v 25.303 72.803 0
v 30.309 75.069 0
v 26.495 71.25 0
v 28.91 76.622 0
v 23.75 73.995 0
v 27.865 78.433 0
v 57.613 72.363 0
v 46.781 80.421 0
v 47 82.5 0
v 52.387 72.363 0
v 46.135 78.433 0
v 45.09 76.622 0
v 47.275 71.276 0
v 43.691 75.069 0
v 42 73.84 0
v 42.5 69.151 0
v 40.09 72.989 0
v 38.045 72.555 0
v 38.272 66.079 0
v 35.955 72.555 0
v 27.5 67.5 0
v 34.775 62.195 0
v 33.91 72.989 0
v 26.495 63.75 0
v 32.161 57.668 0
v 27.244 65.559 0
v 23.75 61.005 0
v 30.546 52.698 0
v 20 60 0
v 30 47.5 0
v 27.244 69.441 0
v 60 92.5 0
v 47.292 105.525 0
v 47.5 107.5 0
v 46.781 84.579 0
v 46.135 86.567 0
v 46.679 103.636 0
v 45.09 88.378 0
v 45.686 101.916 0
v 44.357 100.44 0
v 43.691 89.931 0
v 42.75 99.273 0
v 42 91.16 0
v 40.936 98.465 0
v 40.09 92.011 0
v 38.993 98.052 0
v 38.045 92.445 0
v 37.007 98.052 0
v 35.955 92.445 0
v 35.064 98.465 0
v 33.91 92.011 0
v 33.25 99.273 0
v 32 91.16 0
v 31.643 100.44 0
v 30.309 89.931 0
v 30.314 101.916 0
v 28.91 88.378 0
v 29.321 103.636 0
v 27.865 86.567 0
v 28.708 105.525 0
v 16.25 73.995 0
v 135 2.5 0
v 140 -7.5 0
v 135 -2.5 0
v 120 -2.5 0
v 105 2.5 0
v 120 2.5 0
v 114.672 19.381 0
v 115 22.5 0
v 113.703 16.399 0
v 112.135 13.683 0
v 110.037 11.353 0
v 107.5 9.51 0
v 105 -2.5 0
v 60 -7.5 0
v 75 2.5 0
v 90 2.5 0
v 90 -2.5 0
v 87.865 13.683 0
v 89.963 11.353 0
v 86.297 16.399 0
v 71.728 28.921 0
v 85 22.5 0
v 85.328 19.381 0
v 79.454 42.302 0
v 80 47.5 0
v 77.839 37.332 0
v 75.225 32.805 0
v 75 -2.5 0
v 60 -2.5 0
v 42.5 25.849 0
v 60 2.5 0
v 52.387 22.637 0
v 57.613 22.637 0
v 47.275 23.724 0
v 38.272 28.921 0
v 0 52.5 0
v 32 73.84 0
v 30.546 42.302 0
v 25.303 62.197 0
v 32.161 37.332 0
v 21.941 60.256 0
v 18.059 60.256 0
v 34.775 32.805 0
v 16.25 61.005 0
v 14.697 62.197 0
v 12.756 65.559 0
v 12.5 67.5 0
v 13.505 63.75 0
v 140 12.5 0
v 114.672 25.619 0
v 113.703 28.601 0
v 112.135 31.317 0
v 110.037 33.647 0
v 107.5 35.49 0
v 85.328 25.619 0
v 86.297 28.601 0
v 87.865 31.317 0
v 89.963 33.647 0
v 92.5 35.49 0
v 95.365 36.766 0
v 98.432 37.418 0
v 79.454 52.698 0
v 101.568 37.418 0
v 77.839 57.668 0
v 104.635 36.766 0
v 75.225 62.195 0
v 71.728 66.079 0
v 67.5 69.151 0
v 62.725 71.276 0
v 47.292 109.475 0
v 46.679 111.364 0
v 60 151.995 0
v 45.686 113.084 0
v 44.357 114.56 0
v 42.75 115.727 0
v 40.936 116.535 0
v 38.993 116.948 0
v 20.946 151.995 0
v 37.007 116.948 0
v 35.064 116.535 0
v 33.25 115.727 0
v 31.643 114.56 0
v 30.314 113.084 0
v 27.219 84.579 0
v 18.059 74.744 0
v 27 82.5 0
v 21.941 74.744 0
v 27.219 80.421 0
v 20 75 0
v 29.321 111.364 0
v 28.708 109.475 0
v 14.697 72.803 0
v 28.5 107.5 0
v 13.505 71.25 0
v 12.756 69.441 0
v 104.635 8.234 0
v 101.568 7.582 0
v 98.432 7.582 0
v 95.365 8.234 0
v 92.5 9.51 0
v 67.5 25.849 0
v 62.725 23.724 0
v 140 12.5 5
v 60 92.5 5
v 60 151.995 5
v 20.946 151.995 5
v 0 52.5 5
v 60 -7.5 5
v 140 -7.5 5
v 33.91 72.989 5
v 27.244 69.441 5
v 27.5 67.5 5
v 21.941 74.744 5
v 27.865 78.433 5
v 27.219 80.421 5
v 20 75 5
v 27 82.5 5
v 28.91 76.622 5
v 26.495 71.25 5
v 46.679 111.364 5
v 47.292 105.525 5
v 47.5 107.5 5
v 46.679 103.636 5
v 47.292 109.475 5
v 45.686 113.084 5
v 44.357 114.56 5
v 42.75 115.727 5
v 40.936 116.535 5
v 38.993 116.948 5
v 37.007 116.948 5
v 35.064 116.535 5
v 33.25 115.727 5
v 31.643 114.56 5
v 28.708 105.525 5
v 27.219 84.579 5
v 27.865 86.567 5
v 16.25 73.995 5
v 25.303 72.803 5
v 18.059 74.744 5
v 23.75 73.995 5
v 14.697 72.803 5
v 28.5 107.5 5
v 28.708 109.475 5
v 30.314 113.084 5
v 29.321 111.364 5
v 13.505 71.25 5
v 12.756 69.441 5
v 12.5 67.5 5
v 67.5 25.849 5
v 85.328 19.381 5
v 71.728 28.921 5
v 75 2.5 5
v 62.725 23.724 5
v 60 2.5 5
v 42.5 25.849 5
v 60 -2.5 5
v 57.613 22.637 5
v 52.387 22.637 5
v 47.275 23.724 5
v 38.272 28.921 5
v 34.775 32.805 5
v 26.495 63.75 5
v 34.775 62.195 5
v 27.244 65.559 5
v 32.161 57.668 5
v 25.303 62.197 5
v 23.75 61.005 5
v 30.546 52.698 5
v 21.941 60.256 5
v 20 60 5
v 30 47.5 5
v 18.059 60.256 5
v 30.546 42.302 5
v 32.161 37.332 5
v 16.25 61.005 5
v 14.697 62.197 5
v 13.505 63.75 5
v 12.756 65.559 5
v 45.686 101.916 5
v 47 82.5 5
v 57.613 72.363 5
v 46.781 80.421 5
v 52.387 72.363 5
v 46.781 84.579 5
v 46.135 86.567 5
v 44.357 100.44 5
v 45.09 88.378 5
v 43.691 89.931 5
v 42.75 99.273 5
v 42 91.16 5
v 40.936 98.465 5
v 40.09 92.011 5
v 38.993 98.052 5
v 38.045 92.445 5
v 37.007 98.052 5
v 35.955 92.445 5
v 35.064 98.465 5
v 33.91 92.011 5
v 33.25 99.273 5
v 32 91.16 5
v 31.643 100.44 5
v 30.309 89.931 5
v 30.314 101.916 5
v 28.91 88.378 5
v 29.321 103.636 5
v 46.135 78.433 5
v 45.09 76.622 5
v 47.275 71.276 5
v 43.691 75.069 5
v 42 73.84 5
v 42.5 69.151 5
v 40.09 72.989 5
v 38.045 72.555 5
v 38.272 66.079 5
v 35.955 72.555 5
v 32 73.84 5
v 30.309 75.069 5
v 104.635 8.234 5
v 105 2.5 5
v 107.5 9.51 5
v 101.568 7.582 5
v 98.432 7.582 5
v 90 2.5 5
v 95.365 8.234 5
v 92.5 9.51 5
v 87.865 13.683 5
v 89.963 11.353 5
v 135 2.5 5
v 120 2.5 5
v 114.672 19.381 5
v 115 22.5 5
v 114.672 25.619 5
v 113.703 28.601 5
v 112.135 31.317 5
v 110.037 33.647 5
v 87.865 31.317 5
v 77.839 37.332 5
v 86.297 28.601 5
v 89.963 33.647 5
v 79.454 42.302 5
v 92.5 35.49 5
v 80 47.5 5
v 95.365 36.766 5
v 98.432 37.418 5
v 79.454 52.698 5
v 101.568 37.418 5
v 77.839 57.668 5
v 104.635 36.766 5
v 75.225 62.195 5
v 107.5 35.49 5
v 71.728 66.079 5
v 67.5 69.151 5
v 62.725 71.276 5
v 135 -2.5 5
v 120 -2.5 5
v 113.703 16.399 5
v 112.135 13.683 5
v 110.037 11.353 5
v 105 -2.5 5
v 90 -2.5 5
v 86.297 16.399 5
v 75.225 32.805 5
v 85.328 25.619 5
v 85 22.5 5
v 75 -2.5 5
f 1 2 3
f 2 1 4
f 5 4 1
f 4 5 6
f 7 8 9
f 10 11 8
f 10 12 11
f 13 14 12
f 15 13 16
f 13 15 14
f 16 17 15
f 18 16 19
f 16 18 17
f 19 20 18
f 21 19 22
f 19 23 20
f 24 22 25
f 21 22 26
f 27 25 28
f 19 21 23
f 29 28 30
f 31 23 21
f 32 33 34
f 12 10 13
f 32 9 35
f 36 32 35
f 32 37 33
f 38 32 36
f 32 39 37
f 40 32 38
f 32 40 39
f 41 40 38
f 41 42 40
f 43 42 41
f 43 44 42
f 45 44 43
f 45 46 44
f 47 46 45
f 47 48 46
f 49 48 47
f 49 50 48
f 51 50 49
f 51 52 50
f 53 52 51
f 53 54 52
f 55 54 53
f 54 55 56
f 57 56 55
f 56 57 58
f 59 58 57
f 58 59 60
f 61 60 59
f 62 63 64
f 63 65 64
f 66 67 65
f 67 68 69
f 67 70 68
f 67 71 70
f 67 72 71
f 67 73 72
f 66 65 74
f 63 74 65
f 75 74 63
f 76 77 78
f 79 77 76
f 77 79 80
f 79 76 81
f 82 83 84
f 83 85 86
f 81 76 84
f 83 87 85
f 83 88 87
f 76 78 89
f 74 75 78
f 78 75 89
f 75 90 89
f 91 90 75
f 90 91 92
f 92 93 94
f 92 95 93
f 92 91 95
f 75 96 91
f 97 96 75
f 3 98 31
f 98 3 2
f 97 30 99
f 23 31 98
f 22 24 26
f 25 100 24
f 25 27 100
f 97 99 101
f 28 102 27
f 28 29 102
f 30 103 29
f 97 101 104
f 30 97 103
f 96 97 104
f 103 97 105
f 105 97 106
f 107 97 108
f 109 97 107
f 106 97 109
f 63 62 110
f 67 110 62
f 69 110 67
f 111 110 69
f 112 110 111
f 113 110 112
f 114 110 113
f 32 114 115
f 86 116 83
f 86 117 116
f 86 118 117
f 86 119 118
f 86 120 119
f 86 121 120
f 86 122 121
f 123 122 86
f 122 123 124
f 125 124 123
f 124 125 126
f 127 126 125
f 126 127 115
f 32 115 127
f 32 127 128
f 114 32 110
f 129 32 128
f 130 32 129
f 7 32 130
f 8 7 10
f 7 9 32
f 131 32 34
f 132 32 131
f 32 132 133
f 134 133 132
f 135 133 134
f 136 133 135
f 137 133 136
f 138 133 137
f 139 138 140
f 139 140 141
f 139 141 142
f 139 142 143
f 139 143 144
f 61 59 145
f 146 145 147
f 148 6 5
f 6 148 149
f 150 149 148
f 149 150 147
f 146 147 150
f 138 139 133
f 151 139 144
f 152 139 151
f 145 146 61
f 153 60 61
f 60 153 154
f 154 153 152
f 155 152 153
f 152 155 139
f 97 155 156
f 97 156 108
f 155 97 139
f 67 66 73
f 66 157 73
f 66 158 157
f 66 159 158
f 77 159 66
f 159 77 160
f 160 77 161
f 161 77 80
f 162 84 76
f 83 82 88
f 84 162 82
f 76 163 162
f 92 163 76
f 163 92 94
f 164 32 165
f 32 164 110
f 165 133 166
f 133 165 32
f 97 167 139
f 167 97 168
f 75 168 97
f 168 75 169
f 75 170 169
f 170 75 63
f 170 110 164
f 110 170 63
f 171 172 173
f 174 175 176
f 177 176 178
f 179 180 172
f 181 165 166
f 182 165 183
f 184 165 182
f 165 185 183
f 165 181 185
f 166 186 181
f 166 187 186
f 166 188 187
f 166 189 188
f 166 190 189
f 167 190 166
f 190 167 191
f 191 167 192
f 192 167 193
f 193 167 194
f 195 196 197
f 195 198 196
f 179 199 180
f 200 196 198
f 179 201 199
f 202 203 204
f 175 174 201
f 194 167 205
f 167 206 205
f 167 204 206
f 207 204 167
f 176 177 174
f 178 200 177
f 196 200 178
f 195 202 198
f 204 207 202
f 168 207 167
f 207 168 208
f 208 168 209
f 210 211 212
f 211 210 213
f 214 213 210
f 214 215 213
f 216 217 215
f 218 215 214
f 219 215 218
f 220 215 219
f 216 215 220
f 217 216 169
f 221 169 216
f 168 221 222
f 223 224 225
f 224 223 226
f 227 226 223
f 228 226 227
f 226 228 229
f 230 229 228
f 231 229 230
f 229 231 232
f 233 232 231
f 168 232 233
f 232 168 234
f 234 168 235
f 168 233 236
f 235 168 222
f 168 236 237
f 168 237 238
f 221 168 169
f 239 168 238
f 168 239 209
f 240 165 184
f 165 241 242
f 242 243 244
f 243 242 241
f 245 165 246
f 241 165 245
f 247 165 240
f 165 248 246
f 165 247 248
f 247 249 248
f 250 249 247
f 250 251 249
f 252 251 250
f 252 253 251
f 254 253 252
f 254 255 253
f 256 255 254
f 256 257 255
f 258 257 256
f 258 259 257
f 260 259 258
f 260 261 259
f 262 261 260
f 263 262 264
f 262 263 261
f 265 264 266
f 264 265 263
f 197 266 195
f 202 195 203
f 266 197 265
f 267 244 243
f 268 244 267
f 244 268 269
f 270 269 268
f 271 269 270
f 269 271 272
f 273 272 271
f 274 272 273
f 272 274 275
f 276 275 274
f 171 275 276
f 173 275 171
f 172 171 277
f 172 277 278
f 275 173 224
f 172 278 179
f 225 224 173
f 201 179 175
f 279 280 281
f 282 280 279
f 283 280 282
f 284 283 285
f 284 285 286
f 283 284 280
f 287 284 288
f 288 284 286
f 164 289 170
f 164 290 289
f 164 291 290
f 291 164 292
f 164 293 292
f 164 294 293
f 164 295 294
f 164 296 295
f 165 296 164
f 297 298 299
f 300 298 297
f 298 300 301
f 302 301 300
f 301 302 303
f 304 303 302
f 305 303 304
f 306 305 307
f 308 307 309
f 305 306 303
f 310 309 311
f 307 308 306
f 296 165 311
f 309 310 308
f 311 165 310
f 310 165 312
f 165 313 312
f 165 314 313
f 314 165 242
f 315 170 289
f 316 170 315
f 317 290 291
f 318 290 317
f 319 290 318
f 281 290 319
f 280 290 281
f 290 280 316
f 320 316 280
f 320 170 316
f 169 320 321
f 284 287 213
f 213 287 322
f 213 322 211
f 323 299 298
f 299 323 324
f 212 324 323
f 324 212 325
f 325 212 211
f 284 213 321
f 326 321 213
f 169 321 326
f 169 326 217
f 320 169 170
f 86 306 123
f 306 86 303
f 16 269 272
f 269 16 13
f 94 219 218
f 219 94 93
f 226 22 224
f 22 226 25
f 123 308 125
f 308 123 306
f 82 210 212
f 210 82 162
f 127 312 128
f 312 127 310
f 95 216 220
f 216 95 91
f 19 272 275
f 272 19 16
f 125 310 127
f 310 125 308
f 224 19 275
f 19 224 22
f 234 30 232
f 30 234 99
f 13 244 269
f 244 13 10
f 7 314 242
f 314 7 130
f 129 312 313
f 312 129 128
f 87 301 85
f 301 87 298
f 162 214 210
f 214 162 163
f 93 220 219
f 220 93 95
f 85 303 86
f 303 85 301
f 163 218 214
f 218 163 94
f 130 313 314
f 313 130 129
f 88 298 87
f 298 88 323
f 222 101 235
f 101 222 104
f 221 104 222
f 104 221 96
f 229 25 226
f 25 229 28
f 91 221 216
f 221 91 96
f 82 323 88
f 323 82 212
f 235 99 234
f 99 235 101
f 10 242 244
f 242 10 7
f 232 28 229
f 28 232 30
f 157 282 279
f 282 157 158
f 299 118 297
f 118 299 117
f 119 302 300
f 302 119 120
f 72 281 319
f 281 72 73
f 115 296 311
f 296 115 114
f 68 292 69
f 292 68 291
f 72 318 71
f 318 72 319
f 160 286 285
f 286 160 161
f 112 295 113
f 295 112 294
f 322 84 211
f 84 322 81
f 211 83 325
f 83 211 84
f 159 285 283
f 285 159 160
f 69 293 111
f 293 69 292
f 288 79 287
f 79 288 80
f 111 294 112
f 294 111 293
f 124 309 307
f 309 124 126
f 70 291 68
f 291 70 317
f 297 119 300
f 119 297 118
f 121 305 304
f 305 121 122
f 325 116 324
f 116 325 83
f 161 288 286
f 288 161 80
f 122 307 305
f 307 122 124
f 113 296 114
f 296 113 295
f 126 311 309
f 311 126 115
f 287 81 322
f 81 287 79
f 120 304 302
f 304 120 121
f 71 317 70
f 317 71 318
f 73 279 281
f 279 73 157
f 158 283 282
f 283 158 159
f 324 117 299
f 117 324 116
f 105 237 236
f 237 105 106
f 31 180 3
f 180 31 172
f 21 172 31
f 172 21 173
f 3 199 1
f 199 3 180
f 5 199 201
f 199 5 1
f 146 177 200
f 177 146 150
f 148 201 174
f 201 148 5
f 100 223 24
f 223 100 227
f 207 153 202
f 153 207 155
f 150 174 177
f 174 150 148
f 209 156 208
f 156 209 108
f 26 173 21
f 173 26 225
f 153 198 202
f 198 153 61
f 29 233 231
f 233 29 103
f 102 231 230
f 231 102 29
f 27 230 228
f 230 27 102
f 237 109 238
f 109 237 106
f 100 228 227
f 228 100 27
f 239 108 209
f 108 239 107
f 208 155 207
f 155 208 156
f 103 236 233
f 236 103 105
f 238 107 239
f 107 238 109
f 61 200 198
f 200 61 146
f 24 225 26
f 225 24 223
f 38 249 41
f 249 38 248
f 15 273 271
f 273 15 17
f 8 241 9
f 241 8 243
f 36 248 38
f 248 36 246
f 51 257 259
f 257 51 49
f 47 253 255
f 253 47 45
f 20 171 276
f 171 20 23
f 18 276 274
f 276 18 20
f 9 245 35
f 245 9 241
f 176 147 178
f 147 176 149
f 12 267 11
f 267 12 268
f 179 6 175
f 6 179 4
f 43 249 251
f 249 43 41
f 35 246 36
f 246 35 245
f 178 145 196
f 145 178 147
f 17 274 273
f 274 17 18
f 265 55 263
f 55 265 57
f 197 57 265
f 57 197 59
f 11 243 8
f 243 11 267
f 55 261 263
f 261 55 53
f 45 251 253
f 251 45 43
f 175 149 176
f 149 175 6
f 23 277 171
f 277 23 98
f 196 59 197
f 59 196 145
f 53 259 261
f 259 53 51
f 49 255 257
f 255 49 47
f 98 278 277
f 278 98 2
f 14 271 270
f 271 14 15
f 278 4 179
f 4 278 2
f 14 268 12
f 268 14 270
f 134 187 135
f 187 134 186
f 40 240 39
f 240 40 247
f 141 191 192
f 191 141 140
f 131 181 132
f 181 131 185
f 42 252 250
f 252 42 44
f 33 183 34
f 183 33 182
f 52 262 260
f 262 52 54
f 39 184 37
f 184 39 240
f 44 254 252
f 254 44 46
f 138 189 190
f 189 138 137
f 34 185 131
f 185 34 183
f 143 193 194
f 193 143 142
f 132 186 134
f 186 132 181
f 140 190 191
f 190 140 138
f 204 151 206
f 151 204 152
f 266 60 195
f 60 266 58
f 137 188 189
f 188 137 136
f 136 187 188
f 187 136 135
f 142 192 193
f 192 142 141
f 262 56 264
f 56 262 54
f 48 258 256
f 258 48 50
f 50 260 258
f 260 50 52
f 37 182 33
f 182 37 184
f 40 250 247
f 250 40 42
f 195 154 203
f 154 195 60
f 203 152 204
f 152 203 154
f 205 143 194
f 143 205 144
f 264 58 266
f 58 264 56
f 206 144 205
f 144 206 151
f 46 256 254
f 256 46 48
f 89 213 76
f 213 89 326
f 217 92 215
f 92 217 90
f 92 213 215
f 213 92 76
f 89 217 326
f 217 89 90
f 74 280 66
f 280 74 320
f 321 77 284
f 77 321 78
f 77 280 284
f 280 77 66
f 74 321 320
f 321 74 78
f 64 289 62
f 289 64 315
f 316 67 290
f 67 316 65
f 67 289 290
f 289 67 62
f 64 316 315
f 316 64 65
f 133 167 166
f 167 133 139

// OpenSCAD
difference(){


translate([0,-5-2.5,0]){
difference(){
linear_extrude(5)
polygon(points=[
[60,0],
[140,0],
[140,20],
[60,100],
[60,250],
[40,250],
[0,60
]
]);

color("red")
translate([55,55,0])
cylinder(h=100,d=50,center=true);


color("red")
translate([100,30,0])
cylinder(h=100,d=30,center=true);


color("red")
translate([20,75,0])
cylinder(h=100,d=15,center=true);

color("red")
translate([37,90,0])
cylinder(h=100,d=20,center=true);


color("red")
translate([38,115,0])
cylinder(h=100,d=19,center=true);

//color("blue")
//translate([40,140,0])
//cylinder(h=100,d=18,center=true);


//color("blue")
//translate([42,165,0])
//cylinder(h=100,d=17,center=true);

color("blue")
translate([44,190,0])
cylinder(h=100,d=16,center=true);



color("red")
translate([45,215,0])
cylinder(h=100,d=15,center=true);

color("blue")
translate([60,5,0])
cube([15,5,10]);

color("blue")
translate([60+15+15,5,0])
cube([15,5,10]);

color("blue")
translate([60+15+15+15+15,5,0])
cube([15,5,10]);

}
}



color("red")
translate([0,200-2.5-42/2-1-5-5-5-5-2.5+5+10+50-1, 5-2.5])
cube([200,0.01+10+20+100,100],center=true);

}
